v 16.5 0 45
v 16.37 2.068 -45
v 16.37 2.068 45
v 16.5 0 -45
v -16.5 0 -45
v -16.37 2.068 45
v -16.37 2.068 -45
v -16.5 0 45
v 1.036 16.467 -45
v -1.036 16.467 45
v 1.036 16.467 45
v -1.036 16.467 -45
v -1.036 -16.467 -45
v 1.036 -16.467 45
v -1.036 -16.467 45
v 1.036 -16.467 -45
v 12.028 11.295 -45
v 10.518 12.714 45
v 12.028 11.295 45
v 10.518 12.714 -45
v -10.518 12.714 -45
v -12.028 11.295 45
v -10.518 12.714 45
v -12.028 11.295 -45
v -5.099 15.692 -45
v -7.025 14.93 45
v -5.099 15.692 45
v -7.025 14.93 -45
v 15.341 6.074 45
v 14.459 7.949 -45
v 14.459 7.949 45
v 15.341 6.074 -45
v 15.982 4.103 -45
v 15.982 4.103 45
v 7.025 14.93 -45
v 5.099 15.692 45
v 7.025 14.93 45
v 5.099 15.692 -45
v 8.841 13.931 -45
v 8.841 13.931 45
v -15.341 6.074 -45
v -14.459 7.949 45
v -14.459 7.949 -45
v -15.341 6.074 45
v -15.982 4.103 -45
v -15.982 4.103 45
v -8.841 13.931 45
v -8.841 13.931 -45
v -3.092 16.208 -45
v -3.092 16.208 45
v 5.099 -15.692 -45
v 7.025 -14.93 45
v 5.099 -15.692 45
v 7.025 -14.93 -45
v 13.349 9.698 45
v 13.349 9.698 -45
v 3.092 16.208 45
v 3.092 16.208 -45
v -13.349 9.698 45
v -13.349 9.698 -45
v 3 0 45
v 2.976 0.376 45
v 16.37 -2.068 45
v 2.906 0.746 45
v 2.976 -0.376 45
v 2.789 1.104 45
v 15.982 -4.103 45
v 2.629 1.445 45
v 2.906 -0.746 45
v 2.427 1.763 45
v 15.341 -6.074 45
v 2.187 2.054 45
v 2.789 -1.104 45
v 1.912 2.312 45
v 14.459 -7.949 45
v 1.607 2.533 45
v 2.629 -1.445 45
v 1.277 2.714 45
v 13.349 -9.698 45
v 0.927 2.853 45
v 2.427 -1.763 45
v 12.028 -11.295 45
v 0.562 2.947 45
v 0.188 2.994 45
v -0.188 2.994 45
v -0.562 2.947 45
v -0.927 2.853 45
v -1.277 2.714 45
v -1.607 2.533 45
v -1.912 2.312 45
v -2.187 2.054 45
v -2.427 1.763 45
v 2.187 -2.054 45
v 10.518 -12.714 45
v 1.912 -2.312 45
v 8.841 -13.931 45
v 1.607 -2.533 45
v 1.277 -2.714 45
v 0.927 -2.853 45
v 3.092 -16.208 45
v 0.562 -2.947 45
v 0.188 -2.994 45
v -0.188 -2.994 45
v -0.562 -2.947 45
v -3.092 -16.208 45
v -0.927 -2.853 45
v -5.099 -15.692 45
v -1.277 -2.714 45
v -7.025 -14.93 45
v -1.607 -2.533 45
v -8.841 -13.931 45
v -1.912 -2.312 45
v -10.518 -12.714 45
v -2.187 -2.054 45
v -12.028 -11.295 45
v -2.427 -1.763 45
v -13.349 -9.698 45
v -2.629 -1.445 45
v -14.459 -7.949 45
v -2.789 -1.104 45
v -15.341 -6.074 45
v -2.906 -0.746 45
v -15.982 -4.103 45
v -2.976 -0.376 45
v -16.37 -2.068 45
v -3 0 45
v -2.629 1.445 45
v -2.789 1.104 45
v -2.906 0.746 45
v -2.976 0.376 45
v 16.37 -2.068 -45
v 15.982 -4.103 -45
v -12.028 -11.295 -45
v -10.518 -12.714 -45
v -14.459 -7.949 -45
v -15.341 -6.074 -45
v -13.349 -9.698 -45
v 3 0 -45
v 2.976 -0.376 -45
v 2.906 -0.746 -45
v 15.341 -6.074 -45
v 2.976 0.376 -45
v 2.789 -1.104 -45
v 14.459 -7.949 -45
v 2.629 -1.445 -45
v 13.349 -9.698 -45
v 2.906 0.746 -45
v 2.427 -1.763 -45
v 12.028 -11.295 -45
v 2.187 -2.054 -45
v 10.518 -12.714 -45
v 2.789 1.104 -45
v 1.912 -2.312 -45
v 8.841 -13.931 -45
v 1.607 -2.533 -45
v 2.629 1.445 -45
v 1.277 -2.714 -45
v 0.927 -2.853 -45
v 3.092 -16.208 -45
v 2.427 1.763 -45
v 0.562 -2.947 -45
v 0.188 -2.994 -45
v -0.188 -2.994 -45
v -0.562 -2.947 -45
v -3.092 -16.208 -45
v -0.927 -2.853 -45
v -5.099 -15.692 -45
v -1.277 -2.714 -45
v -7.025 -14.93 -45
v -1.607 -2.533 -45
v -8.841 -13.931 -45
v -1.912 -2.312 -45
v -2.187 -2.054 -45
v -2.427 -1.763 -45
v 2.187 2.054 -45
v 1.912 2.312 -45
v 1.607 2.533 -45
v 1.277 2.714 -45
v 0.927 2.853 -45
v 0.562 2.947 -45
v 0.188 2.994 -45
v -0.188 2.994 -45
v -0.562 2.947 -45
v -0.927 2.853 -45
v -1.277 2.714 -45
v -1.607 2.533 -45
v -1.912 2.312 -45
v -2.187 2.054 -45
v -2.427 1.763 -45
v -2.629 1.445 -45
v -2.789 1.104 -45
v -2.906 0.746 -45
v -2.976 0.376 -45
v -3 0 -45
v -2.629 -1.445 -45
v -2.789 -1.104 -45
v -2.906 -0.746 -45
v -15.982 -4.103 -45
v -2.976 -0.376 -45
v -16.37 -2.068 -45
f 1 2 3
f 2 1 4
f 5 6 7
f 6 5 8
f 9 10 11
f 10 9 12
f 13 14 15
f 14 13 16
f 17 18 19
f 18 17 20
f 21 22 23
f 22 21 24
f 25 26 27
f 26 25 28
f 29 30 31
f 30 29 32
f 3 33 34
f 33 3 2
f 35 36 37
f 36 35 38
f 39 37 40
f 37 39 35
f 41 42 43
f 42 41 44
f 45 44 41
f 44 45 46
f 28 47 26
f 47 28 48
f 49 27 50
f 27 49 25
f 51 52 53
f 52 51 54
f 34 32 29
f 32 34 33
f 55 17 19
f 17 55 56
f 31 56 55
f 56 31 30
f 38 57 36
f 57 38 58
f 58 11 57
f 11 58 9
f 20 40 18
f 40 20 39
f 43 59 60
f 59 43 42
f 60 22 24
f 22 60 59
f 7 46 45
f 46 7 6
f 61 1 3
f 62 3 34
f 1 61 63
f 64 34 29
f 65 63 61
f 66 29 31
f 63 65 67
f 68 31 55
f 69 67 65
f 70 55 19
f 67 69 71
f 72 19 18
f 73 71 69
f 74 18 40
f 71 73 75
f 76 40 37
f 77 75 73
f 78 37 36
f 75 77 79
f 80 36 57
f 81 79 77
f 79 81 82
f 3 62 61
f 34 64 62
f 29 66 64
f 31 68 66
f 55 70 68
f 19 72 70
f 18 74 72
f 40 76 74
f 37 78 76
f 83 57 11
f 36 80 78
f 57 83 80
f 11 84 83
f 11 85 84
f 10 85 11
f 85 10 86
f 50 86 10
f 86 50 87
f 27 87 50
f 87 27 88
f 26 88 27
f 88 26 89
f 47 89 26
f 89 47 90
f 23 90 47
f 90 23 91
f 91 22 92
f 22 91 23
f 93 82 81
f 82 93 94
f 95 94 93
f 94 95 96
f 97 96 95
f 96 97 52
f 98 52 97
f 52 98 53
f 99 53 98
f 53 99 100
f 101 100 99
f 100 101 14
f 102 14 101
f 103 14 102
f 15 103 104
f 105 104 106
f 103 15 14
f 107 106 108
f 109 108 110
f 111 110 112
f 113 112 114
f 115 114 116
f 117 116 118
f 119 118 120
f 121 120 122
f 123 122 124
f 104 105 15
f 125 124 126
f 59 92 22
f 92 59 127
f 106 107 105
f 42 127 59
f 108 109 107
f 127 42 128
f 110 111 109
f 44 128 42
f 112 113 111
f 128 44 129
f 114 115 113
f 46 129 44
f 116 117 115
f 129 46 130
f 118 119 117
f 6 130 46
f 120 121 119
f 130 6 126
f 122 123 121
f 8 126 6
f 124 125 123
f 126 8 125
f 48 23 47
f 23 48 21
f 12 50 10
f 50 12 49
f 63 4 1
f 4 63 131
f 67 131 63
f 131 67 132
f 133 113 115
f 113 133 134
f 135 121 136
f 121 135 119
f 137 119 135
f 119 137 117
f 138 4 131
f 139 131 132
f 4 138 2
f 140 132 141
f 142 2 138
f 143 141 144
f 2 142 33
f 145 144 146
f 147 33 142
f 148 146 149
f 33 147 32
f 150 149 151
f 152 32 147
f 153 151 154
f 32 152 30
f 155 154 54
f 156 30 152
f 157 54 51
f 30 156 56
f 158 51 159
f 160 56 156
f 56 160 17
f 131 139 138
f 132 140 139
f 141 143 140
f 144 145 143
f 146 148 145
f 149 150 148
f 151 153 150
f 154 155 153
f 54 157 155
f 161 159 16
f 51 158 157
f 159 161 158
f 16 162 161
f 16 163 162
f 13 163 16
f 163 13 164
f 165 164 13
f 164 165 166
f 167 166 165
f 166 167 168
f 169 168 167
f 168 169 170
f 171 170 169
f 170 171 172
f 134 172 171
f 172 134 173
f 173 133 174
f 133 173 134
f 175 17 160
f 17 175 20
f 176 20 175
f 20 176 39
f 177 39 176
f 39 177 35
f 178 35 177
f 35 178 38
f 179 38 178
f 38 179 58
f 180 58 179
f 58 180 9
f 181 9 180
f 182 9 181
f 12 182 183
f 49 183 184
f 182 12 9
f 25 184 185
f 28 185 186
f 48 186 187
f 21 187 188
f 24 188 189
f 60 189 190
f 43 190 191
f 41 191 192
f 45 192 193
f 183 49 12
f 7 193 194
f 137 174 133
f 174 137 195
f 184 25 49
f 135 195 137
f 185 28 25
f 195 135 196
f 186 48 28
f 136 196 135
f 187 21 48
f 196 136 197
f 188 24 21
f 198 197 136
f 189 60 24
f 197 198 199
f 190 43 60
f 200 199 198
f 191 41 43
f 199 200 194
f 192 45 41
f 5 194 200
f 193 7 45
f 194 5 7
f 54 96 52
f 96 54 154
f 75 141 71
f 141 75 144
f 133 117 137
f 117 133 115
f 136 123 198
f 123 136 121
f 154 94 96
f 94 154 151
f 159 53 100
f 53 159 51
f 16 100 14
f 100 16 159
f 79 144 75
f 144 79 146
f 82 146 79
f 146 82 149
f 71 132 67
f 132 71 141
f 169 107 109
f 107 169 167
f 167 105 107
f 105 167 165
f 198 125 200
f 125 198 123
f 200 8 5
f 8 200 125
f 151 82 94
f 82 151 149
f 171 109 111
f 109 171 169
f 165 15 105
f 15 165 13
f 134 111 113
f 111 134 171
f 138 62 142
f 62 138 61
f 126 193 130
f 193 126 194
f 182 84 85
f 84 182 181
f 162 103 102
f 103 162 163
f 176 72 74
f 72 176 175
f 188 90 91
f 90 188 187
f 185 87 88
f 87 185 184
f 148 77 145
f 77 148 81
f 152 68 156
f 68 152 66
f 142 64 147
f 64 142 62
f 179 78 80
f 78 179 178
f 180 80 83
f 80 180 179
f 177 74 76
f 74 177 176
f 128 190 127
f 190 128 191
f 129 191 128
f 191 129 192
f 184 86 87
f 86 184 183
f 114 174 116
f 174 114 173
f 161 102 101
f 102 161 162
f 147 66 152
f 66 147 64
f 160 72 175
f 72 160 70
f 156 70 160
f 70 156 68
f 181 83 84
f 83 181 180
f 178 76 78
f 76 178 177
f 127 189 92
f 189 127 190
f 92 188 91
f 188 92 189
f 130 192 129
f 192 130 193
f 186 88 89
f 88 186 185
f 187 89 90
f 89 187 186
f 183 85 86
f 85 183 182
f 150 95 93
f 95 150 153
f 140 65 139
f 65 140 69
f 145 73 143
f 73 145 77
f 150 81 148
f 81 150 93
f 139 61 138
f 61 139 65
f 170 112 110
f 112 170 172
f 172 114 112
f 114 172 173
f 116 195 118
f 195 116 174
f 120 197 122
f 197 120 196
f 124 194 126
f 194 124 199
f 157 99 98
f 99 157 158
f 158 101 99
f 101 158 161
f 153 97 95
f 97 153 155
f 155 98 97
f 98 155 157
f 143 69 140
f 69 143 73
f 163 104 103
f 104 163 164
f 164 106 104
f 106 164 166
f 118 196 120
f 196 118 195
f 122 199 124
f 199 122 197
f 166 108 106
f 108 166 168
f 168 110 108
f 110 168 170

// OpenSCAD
$fn = 50;


difference() {
	union() {
		translate(v = [0, 0, -45.0000000000]) {
			cylinder(h = 90, r = 16.5000000000);
		}
	}
	union() {
		translate(v = [0, 0, -100.0000000000]) {
			cylinder(h = 200, r = 3);
		}
	}
}
